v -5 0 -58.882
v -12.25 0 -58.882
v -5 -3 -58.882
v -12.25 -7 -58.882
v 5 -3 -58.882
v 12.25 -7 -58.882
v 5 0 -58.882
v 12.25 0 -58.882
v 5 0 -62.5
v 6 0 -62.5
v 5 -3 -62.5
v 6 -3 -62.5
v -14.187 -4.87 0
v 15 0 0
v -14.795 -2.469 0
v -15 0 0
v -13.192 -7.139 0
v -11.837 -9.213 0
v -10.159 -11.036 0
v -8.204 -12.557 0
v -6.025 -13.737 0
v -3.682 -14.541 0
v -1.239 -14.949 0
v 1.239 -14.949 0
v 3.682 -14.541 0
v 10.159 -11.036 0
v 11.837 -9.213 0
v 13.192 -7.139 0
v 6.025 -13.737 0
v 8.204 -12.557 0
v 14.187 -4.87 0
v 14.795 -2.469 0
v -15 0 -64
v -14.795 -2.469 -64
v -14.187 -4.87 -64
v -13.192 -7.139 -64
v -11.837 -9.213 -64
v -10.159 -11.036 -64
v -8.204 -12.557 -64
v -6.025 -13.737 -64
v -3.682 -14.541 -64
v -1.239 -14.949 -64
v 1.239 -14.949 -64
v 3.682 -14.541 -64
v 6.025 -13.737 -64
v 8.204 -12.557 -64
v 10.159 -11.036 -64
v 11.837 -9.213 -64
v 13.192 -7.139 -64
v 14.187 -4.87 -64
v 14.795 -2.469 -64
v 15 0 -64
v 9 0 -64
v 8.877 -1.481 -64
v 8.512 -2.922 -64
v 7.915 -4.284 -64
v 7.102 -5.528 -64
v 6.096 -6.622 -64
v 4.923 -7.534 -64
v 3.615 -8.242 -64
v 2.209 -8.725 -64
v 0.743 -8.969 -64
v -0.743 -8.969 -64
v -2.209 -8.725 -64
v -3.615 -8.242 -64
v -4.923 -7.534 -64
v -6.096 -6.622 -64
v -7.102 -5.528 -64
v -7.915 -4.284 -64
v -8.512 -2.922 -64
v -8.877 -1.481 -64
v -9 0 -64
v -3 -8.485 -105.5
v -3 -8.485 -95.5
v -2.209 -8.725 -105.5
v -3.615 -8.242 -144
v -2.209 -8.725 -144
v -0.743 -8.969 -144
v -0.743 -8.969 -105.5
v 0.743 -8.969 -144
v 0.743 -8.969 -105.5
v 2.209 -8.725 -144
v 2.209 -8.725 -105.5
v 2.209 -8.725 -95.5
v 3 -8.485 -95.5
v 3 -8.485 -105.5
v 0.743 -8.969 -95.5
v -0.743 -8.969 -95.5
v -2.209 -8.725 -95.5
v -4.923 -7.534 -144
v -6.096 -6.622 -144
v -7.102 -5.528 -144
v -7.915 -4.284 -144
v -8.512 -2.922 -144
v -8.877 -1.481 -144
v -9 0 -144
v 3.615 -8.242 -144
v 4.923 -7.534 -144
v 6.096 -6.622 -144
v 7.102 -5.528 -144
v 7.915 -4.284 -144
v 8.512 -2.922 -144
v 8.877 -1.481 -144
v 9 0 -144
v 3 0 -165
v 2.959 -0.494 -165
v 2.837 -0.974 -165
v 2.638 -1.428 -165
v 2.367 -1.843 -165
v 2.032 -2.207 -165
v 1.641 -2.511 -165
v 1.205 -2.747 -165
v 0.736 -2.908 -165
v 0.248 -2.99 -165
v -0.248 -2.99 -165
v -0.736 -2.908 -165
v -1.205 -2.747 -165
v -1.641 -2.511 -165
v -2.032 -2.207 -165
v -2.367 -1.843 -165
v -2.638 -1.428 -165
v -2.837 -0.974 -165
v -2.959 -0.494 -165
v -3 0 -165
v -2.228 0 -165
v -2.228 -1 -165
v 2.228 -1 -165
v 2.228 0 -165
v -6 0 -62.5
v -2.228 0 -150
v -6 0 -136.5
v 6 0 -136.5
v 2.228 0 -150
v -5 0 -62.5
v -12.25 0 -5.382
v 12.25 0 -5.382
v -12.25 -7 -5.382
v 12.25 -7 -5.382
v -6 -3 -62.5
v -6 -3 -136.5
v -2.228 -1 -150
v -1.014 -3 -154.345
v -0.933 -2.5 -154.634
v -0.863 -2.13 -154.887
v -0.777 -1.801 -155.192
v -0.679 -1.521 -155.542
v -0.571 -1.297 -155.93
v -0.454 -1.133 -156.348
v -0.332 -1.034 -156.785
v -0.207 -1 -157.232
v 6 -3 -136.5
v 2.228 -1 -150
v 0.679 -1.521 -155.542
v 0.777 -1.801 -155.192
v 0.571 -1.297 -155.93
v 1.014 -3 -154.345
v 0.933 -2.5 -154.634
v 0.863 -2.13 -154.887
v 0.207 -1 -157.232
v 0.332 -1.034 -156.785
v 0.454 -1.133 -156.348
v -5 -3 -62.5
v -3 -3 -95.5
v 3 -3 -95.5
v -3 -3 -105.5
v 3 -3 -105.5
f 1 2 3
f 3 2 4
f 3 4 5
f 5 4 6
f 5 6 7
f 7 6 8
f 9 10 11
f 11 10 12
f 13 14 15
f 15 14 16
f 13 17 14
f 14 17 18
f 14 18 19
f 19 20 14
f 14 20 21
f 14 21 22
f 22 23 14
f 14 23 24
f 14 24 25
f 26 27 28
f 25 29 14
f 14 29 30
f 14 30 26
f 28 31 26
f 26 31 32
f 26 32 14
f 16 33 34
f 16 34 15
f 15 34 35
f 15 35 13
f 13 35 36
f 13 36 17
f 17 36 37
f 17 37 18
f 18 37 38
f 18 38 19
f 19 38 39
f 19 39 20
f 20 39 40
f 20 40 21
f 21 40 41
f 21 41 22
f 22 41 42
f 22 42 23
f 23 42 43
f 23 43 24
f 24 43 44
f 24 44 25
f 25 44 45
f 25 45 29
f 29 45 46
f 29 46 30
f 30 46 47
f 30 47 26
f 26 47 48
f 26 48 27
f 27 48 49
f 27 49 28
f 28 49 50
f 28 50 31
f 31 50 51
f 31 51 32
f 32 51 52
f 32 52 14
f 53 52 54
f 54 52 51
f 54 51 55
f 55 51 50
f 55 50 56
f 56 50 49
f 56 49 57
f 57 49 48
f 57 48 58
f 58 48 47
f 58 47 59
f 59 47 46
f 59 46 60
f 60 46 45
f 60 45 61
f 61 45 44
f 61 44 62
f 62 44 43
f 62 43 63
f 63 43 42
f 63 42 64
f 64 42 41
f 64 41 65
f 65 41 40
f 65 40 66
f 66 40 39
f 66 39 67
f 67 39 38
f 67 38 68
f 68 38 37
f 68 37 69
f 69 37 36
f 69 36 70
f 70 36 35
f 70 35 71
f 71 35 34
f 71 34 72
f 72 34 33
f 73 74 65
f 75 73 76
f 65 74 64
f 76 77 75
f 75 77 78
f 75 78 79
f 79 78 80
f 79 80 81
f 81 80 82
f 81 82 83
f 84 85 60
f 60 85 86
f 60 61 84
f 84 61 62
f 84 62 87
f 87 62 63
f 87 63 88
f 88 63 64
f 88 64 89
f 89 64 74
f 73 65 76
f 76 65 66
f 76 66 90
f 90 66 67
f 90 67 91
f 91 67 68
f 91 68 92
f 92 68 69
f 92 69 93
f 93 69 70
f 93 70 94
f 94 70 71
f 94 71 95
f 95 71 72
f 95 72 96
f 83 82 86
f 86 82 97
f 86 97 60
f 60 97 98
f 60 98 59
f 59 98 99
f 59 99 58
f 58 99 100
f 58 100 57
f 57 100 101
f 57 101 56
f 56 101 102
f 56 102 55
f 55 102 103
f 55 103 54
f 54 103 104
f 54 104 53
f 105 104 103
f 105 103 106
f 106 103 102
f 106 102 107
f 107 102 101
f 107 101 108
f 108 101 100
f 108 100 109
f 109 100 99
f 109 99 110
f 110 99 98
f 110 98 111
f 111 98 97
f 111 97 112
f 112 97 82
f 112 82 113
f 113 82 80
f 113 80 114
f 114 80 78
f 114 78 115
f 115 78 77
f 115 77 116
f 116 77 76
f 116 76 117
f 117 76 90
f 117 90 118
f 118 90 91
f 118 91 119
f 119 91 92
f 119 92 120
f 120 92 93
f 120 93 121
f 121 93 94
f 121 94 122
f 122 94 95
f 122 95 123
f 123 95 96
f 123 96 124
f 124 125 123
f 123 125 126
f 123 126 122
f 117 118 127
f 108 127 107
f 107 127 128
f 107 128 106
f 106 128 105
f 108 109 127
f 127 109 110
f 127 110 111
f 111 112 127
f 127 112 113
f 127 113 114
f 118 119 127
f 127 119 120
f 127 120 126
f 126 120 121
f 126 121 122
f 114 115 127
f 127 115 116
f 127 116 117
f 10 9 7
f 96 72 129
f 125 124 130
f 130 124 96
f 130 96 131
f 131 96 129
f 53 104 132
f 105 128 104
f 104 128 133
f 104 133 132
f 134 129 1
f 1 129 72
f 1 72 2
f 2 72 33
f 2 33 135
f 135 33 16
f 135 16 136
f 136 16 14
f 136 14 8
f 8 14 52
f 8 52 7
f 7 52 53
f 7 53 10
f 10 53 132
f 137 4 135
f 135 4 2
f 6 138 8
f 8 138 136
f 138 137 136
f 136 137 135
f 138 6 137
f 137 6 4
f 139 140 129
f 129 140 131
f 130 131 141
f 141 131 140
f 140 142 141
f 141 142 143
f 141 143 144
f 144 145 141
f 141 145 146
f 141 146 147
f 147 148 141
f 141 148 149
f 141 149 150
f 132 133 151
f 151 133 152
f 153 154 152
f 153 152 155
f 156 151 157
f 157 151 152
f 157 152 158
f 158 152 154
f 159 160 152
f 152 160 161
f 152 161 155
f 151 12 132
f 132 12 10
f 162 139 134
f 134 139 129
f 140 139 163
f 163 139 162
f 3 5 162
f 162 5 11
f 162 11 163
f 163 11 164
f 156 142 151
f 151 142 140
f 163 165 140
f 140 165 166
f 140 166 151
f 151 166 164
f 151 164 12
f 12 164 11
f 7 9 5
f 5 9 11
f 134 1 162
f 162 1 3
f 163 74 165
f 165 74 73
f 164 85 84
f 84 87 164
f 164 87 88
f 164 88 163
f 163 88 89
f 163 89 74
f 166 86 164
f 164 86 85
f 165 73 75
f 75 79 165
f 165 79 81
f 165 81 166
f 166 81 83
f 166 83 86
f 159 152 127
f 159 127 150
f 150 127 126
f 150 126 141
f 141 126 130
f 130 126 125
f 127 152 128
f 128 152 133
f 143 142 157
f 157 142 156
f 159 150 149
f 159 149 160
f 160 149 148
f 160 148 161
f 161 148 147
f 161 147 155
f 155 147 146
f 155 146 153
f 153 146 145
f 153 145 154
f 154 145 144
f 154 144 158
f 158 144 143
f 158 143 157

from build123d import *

# Parameters (mm, degrees)
REVOLVE1_ANGLE          = 180
SKETCH3_W               = 24.5
SKETCH3_H               = 53.5
CUT_EXTRUDE1_DEPTH      = 7
CUT_EXTRUDE2_DEPTH      = 3
SKETCH5_W               = 2.5
SKETCH5_H               = 3.617532458
CUT_EXTRUDE3_DEPTH      = 3
CUT_EXTRUDE4_REACH      = 168.114
CUT_EXTRUDE4_END_RADIUS = 9
SKETCH6_W               = 6
SKETCH6_H               = 10
SKETCH7_W               = 4.455882352
SKETCH7_H               = 15
CUT_EXTRUDE5_DEPTH      = 1
SKETCH8_W               = 5
SKETCH8_H               = 3.617532458
CUT_EXTRUDE6_DEPTH      = 3
CHAMFER10_SIZE          = 2
CHAMFER10_SIZE_2        = 3.464101615
FILLET1_R               = 3


with BuildPart() as part:
    # Sketch2 → Revolve1 (revolve)
    with BuildSketch(Plane(origin=(0, 0, 0), x_dir=(1, 0, 0), z_dir=(0, 1, 0))):
        Polygon((0, 0), (-15, 0), (-15, 64), (-9, 64), (-9, 144), (-3, 165), (0, 165), align=None)
    revolve(axis=Axis((0, 0, -165), (0, 0, 1)), revolution_arc=REVOLVE1_ANGLE)

    # Sketch3 → Cut-Extrude1 (cut)
    with BuildSketch(Plane(origin=(0, 0, 0), x_dir=(1, 0, 0), z_dir=(0, 1, 0))):
        with Locations((0, 32.132467542)):
            Rectangle(SKETCH3_W, SKETCH3_H)
    extrude(amount=-CUT_EXTRUDE1_DEPTH, mode=Mode.SUBTRACT)

    # Sketch4 → Cut-Extrude2 (cut)
    with BuildSketch(Plane(origin=(0, 0, 0), x_dir=(1, 0, 0), z_dir=(0, 1, 0))):
        Polygon((-6, 62.5), (6, 62.5), (6, 136.5), (1.25, 153.5), (-1.25, 153.5), (-6, 136.5), align=None)
    extrude(amount=-CUT_EXTRUDE2_DEPTH, mode=Mode.SUBTRACT)

    # Sketch5 → Cut-Extrude3 (cut)
    with BuildSketch(Plane(origin=(0, 0, 0), x_dir=(1, 0, 0), z_dir=(0, 1, 0))):
        with Locations((-3.75, 60.691233771)):
            Rectangle(SKETCH5_W, SKETCH5_H)
        with Locations((3.75, 60.691233771)):
            Rectangle(SKETCH5_W, SKETCH5_H)
    extrude(amount=-CUT_EXTRUDE3_DEPTH, mode=Mode.SUBTRACT)

    # Cut-Extrude4: up to this cylinder (the profile starts inside it)
    cut_extrude4_end = Plane(origin=(0, 0, -100.5), z_dir=(0, 0, -1)) * Cylinder(CUT_EXTRUDE4_END_RADIUS, 355.228, mode=Mode.PRIVATE)
    # Sketch6 → Cut-Extrude4 (cut, up to the surface)
    with BuildSketch(Plane(origin=(0, -3, 0), x_dir=(1, 0, 0), z_dir=(0, 1, 0)), mode=Mode.PRIVATE) as cut_extrude4_sk1:
        with Locations((0, 100.5)):
            Rectangle(SKETCH6_W, SKETCH6_H)
    cut_extrude4_tool1 = extrude(cut_extrude4_sk1.sketch, amount=-CUT_EXTRUDE4_REACH, mode=Mode.PRIVATE) & cut_extrude4_end
    add(cut_extrude4_tool1.solids().sort_by_distance((0, -3, -100.5))[0], mode=Mode.SUBTRACT)

    # Sketch7 → Cut-Extrude5 (cut)
    with BuildSketch(Plane(origin=(0, 0, 0), x_dir=(1, 0, 0), z_dir=(0, 1, 0))):
        with Locations((0, 157.5)):
            Rectangle(SKETCH7_W, SKETCH7_H)
    extrude(amount=-CUT_EXTRUDE5_DEPTH, mode=Mode.SUBTRACT)

    # Sketch8 → Cut-Extrude6 (cut)
    with BuildSketch(Plane(origin=(0, 0, 0), x_dir=(1, 0, 0), z_dir=(0, 1, 0))):
        with Locations((0, 60.691233771)):
            Rectangle(SKETCH8_W, SKETCH8_H)
    extrude(amount=-CUT_EXTRUDE6_DEPTH, mode=Mode.SUBTRACT)

    # Chamfer10
    # the kernel refuses this chamfer: 3.464101615, 2 mm, written as the material it takes off along each edge
    with BuildSketch(Plane(origin=(10.211927941, -1, -153.5), x_dir=(0, 0.05789386240267106, -0.9983227437537926), z_dir=(-1, 0, 0))) as chamfer10_piece_1_section:
        Polygon((CHAMFER10_SIZE * 0.998322743754, CHAMFER10_SIZE * 0.0578938624027), (-CHAMFER10_SIZE_2 * 0.057893862405, CHAMFER10_SIZE_2 * 0.998322743793), (0, 0), align=None)
    chamfer10_piece_1 = extrude(amount=20.423855882, mode=Mode.PRIVATE)
    chamfer10_piece_1 = split(chamfer10_piece_1, bisect_by=Plane(origin=(0, -3, -154.190565485), z_dir=(0, 1, 0)), keep=Keep.TOP, mode=Mode.PRIVATE)
    chamfer10_piece_1 = split(chamfer10_piece_1, bisect_by=Plane(origin=(-0.980499377, -1.889149357, -154.464528546), z_dir=(0.9631109740028581, 6.725367985932025e-15, 0.26910453685374025)), keep=Keep.TOP, mode=Mode.PRIVATE)
    chamfer10_piece_1 = split(chamfer10_piece_1, bisect_by=Plane(origin=(0.980499377, -1.889149357, -154.464528546), z_dir=(-0.9631109740028581, -6.725367985932025e-15, 0.26910453685374025)), keep=Keep.TOP, mode=Mode.PRIVATE)
    add(chamfer10_piece_1, mode=Mode.SUBTRACT)

    # Fillet1
    fillet1_edges = [part.edges().sort_by_distance(p)[0] for p in [
        (0, -1, -155.5),
    ]]
    fillet(fillet1_edges, radius=FILLET1_R)


solid = part.part
